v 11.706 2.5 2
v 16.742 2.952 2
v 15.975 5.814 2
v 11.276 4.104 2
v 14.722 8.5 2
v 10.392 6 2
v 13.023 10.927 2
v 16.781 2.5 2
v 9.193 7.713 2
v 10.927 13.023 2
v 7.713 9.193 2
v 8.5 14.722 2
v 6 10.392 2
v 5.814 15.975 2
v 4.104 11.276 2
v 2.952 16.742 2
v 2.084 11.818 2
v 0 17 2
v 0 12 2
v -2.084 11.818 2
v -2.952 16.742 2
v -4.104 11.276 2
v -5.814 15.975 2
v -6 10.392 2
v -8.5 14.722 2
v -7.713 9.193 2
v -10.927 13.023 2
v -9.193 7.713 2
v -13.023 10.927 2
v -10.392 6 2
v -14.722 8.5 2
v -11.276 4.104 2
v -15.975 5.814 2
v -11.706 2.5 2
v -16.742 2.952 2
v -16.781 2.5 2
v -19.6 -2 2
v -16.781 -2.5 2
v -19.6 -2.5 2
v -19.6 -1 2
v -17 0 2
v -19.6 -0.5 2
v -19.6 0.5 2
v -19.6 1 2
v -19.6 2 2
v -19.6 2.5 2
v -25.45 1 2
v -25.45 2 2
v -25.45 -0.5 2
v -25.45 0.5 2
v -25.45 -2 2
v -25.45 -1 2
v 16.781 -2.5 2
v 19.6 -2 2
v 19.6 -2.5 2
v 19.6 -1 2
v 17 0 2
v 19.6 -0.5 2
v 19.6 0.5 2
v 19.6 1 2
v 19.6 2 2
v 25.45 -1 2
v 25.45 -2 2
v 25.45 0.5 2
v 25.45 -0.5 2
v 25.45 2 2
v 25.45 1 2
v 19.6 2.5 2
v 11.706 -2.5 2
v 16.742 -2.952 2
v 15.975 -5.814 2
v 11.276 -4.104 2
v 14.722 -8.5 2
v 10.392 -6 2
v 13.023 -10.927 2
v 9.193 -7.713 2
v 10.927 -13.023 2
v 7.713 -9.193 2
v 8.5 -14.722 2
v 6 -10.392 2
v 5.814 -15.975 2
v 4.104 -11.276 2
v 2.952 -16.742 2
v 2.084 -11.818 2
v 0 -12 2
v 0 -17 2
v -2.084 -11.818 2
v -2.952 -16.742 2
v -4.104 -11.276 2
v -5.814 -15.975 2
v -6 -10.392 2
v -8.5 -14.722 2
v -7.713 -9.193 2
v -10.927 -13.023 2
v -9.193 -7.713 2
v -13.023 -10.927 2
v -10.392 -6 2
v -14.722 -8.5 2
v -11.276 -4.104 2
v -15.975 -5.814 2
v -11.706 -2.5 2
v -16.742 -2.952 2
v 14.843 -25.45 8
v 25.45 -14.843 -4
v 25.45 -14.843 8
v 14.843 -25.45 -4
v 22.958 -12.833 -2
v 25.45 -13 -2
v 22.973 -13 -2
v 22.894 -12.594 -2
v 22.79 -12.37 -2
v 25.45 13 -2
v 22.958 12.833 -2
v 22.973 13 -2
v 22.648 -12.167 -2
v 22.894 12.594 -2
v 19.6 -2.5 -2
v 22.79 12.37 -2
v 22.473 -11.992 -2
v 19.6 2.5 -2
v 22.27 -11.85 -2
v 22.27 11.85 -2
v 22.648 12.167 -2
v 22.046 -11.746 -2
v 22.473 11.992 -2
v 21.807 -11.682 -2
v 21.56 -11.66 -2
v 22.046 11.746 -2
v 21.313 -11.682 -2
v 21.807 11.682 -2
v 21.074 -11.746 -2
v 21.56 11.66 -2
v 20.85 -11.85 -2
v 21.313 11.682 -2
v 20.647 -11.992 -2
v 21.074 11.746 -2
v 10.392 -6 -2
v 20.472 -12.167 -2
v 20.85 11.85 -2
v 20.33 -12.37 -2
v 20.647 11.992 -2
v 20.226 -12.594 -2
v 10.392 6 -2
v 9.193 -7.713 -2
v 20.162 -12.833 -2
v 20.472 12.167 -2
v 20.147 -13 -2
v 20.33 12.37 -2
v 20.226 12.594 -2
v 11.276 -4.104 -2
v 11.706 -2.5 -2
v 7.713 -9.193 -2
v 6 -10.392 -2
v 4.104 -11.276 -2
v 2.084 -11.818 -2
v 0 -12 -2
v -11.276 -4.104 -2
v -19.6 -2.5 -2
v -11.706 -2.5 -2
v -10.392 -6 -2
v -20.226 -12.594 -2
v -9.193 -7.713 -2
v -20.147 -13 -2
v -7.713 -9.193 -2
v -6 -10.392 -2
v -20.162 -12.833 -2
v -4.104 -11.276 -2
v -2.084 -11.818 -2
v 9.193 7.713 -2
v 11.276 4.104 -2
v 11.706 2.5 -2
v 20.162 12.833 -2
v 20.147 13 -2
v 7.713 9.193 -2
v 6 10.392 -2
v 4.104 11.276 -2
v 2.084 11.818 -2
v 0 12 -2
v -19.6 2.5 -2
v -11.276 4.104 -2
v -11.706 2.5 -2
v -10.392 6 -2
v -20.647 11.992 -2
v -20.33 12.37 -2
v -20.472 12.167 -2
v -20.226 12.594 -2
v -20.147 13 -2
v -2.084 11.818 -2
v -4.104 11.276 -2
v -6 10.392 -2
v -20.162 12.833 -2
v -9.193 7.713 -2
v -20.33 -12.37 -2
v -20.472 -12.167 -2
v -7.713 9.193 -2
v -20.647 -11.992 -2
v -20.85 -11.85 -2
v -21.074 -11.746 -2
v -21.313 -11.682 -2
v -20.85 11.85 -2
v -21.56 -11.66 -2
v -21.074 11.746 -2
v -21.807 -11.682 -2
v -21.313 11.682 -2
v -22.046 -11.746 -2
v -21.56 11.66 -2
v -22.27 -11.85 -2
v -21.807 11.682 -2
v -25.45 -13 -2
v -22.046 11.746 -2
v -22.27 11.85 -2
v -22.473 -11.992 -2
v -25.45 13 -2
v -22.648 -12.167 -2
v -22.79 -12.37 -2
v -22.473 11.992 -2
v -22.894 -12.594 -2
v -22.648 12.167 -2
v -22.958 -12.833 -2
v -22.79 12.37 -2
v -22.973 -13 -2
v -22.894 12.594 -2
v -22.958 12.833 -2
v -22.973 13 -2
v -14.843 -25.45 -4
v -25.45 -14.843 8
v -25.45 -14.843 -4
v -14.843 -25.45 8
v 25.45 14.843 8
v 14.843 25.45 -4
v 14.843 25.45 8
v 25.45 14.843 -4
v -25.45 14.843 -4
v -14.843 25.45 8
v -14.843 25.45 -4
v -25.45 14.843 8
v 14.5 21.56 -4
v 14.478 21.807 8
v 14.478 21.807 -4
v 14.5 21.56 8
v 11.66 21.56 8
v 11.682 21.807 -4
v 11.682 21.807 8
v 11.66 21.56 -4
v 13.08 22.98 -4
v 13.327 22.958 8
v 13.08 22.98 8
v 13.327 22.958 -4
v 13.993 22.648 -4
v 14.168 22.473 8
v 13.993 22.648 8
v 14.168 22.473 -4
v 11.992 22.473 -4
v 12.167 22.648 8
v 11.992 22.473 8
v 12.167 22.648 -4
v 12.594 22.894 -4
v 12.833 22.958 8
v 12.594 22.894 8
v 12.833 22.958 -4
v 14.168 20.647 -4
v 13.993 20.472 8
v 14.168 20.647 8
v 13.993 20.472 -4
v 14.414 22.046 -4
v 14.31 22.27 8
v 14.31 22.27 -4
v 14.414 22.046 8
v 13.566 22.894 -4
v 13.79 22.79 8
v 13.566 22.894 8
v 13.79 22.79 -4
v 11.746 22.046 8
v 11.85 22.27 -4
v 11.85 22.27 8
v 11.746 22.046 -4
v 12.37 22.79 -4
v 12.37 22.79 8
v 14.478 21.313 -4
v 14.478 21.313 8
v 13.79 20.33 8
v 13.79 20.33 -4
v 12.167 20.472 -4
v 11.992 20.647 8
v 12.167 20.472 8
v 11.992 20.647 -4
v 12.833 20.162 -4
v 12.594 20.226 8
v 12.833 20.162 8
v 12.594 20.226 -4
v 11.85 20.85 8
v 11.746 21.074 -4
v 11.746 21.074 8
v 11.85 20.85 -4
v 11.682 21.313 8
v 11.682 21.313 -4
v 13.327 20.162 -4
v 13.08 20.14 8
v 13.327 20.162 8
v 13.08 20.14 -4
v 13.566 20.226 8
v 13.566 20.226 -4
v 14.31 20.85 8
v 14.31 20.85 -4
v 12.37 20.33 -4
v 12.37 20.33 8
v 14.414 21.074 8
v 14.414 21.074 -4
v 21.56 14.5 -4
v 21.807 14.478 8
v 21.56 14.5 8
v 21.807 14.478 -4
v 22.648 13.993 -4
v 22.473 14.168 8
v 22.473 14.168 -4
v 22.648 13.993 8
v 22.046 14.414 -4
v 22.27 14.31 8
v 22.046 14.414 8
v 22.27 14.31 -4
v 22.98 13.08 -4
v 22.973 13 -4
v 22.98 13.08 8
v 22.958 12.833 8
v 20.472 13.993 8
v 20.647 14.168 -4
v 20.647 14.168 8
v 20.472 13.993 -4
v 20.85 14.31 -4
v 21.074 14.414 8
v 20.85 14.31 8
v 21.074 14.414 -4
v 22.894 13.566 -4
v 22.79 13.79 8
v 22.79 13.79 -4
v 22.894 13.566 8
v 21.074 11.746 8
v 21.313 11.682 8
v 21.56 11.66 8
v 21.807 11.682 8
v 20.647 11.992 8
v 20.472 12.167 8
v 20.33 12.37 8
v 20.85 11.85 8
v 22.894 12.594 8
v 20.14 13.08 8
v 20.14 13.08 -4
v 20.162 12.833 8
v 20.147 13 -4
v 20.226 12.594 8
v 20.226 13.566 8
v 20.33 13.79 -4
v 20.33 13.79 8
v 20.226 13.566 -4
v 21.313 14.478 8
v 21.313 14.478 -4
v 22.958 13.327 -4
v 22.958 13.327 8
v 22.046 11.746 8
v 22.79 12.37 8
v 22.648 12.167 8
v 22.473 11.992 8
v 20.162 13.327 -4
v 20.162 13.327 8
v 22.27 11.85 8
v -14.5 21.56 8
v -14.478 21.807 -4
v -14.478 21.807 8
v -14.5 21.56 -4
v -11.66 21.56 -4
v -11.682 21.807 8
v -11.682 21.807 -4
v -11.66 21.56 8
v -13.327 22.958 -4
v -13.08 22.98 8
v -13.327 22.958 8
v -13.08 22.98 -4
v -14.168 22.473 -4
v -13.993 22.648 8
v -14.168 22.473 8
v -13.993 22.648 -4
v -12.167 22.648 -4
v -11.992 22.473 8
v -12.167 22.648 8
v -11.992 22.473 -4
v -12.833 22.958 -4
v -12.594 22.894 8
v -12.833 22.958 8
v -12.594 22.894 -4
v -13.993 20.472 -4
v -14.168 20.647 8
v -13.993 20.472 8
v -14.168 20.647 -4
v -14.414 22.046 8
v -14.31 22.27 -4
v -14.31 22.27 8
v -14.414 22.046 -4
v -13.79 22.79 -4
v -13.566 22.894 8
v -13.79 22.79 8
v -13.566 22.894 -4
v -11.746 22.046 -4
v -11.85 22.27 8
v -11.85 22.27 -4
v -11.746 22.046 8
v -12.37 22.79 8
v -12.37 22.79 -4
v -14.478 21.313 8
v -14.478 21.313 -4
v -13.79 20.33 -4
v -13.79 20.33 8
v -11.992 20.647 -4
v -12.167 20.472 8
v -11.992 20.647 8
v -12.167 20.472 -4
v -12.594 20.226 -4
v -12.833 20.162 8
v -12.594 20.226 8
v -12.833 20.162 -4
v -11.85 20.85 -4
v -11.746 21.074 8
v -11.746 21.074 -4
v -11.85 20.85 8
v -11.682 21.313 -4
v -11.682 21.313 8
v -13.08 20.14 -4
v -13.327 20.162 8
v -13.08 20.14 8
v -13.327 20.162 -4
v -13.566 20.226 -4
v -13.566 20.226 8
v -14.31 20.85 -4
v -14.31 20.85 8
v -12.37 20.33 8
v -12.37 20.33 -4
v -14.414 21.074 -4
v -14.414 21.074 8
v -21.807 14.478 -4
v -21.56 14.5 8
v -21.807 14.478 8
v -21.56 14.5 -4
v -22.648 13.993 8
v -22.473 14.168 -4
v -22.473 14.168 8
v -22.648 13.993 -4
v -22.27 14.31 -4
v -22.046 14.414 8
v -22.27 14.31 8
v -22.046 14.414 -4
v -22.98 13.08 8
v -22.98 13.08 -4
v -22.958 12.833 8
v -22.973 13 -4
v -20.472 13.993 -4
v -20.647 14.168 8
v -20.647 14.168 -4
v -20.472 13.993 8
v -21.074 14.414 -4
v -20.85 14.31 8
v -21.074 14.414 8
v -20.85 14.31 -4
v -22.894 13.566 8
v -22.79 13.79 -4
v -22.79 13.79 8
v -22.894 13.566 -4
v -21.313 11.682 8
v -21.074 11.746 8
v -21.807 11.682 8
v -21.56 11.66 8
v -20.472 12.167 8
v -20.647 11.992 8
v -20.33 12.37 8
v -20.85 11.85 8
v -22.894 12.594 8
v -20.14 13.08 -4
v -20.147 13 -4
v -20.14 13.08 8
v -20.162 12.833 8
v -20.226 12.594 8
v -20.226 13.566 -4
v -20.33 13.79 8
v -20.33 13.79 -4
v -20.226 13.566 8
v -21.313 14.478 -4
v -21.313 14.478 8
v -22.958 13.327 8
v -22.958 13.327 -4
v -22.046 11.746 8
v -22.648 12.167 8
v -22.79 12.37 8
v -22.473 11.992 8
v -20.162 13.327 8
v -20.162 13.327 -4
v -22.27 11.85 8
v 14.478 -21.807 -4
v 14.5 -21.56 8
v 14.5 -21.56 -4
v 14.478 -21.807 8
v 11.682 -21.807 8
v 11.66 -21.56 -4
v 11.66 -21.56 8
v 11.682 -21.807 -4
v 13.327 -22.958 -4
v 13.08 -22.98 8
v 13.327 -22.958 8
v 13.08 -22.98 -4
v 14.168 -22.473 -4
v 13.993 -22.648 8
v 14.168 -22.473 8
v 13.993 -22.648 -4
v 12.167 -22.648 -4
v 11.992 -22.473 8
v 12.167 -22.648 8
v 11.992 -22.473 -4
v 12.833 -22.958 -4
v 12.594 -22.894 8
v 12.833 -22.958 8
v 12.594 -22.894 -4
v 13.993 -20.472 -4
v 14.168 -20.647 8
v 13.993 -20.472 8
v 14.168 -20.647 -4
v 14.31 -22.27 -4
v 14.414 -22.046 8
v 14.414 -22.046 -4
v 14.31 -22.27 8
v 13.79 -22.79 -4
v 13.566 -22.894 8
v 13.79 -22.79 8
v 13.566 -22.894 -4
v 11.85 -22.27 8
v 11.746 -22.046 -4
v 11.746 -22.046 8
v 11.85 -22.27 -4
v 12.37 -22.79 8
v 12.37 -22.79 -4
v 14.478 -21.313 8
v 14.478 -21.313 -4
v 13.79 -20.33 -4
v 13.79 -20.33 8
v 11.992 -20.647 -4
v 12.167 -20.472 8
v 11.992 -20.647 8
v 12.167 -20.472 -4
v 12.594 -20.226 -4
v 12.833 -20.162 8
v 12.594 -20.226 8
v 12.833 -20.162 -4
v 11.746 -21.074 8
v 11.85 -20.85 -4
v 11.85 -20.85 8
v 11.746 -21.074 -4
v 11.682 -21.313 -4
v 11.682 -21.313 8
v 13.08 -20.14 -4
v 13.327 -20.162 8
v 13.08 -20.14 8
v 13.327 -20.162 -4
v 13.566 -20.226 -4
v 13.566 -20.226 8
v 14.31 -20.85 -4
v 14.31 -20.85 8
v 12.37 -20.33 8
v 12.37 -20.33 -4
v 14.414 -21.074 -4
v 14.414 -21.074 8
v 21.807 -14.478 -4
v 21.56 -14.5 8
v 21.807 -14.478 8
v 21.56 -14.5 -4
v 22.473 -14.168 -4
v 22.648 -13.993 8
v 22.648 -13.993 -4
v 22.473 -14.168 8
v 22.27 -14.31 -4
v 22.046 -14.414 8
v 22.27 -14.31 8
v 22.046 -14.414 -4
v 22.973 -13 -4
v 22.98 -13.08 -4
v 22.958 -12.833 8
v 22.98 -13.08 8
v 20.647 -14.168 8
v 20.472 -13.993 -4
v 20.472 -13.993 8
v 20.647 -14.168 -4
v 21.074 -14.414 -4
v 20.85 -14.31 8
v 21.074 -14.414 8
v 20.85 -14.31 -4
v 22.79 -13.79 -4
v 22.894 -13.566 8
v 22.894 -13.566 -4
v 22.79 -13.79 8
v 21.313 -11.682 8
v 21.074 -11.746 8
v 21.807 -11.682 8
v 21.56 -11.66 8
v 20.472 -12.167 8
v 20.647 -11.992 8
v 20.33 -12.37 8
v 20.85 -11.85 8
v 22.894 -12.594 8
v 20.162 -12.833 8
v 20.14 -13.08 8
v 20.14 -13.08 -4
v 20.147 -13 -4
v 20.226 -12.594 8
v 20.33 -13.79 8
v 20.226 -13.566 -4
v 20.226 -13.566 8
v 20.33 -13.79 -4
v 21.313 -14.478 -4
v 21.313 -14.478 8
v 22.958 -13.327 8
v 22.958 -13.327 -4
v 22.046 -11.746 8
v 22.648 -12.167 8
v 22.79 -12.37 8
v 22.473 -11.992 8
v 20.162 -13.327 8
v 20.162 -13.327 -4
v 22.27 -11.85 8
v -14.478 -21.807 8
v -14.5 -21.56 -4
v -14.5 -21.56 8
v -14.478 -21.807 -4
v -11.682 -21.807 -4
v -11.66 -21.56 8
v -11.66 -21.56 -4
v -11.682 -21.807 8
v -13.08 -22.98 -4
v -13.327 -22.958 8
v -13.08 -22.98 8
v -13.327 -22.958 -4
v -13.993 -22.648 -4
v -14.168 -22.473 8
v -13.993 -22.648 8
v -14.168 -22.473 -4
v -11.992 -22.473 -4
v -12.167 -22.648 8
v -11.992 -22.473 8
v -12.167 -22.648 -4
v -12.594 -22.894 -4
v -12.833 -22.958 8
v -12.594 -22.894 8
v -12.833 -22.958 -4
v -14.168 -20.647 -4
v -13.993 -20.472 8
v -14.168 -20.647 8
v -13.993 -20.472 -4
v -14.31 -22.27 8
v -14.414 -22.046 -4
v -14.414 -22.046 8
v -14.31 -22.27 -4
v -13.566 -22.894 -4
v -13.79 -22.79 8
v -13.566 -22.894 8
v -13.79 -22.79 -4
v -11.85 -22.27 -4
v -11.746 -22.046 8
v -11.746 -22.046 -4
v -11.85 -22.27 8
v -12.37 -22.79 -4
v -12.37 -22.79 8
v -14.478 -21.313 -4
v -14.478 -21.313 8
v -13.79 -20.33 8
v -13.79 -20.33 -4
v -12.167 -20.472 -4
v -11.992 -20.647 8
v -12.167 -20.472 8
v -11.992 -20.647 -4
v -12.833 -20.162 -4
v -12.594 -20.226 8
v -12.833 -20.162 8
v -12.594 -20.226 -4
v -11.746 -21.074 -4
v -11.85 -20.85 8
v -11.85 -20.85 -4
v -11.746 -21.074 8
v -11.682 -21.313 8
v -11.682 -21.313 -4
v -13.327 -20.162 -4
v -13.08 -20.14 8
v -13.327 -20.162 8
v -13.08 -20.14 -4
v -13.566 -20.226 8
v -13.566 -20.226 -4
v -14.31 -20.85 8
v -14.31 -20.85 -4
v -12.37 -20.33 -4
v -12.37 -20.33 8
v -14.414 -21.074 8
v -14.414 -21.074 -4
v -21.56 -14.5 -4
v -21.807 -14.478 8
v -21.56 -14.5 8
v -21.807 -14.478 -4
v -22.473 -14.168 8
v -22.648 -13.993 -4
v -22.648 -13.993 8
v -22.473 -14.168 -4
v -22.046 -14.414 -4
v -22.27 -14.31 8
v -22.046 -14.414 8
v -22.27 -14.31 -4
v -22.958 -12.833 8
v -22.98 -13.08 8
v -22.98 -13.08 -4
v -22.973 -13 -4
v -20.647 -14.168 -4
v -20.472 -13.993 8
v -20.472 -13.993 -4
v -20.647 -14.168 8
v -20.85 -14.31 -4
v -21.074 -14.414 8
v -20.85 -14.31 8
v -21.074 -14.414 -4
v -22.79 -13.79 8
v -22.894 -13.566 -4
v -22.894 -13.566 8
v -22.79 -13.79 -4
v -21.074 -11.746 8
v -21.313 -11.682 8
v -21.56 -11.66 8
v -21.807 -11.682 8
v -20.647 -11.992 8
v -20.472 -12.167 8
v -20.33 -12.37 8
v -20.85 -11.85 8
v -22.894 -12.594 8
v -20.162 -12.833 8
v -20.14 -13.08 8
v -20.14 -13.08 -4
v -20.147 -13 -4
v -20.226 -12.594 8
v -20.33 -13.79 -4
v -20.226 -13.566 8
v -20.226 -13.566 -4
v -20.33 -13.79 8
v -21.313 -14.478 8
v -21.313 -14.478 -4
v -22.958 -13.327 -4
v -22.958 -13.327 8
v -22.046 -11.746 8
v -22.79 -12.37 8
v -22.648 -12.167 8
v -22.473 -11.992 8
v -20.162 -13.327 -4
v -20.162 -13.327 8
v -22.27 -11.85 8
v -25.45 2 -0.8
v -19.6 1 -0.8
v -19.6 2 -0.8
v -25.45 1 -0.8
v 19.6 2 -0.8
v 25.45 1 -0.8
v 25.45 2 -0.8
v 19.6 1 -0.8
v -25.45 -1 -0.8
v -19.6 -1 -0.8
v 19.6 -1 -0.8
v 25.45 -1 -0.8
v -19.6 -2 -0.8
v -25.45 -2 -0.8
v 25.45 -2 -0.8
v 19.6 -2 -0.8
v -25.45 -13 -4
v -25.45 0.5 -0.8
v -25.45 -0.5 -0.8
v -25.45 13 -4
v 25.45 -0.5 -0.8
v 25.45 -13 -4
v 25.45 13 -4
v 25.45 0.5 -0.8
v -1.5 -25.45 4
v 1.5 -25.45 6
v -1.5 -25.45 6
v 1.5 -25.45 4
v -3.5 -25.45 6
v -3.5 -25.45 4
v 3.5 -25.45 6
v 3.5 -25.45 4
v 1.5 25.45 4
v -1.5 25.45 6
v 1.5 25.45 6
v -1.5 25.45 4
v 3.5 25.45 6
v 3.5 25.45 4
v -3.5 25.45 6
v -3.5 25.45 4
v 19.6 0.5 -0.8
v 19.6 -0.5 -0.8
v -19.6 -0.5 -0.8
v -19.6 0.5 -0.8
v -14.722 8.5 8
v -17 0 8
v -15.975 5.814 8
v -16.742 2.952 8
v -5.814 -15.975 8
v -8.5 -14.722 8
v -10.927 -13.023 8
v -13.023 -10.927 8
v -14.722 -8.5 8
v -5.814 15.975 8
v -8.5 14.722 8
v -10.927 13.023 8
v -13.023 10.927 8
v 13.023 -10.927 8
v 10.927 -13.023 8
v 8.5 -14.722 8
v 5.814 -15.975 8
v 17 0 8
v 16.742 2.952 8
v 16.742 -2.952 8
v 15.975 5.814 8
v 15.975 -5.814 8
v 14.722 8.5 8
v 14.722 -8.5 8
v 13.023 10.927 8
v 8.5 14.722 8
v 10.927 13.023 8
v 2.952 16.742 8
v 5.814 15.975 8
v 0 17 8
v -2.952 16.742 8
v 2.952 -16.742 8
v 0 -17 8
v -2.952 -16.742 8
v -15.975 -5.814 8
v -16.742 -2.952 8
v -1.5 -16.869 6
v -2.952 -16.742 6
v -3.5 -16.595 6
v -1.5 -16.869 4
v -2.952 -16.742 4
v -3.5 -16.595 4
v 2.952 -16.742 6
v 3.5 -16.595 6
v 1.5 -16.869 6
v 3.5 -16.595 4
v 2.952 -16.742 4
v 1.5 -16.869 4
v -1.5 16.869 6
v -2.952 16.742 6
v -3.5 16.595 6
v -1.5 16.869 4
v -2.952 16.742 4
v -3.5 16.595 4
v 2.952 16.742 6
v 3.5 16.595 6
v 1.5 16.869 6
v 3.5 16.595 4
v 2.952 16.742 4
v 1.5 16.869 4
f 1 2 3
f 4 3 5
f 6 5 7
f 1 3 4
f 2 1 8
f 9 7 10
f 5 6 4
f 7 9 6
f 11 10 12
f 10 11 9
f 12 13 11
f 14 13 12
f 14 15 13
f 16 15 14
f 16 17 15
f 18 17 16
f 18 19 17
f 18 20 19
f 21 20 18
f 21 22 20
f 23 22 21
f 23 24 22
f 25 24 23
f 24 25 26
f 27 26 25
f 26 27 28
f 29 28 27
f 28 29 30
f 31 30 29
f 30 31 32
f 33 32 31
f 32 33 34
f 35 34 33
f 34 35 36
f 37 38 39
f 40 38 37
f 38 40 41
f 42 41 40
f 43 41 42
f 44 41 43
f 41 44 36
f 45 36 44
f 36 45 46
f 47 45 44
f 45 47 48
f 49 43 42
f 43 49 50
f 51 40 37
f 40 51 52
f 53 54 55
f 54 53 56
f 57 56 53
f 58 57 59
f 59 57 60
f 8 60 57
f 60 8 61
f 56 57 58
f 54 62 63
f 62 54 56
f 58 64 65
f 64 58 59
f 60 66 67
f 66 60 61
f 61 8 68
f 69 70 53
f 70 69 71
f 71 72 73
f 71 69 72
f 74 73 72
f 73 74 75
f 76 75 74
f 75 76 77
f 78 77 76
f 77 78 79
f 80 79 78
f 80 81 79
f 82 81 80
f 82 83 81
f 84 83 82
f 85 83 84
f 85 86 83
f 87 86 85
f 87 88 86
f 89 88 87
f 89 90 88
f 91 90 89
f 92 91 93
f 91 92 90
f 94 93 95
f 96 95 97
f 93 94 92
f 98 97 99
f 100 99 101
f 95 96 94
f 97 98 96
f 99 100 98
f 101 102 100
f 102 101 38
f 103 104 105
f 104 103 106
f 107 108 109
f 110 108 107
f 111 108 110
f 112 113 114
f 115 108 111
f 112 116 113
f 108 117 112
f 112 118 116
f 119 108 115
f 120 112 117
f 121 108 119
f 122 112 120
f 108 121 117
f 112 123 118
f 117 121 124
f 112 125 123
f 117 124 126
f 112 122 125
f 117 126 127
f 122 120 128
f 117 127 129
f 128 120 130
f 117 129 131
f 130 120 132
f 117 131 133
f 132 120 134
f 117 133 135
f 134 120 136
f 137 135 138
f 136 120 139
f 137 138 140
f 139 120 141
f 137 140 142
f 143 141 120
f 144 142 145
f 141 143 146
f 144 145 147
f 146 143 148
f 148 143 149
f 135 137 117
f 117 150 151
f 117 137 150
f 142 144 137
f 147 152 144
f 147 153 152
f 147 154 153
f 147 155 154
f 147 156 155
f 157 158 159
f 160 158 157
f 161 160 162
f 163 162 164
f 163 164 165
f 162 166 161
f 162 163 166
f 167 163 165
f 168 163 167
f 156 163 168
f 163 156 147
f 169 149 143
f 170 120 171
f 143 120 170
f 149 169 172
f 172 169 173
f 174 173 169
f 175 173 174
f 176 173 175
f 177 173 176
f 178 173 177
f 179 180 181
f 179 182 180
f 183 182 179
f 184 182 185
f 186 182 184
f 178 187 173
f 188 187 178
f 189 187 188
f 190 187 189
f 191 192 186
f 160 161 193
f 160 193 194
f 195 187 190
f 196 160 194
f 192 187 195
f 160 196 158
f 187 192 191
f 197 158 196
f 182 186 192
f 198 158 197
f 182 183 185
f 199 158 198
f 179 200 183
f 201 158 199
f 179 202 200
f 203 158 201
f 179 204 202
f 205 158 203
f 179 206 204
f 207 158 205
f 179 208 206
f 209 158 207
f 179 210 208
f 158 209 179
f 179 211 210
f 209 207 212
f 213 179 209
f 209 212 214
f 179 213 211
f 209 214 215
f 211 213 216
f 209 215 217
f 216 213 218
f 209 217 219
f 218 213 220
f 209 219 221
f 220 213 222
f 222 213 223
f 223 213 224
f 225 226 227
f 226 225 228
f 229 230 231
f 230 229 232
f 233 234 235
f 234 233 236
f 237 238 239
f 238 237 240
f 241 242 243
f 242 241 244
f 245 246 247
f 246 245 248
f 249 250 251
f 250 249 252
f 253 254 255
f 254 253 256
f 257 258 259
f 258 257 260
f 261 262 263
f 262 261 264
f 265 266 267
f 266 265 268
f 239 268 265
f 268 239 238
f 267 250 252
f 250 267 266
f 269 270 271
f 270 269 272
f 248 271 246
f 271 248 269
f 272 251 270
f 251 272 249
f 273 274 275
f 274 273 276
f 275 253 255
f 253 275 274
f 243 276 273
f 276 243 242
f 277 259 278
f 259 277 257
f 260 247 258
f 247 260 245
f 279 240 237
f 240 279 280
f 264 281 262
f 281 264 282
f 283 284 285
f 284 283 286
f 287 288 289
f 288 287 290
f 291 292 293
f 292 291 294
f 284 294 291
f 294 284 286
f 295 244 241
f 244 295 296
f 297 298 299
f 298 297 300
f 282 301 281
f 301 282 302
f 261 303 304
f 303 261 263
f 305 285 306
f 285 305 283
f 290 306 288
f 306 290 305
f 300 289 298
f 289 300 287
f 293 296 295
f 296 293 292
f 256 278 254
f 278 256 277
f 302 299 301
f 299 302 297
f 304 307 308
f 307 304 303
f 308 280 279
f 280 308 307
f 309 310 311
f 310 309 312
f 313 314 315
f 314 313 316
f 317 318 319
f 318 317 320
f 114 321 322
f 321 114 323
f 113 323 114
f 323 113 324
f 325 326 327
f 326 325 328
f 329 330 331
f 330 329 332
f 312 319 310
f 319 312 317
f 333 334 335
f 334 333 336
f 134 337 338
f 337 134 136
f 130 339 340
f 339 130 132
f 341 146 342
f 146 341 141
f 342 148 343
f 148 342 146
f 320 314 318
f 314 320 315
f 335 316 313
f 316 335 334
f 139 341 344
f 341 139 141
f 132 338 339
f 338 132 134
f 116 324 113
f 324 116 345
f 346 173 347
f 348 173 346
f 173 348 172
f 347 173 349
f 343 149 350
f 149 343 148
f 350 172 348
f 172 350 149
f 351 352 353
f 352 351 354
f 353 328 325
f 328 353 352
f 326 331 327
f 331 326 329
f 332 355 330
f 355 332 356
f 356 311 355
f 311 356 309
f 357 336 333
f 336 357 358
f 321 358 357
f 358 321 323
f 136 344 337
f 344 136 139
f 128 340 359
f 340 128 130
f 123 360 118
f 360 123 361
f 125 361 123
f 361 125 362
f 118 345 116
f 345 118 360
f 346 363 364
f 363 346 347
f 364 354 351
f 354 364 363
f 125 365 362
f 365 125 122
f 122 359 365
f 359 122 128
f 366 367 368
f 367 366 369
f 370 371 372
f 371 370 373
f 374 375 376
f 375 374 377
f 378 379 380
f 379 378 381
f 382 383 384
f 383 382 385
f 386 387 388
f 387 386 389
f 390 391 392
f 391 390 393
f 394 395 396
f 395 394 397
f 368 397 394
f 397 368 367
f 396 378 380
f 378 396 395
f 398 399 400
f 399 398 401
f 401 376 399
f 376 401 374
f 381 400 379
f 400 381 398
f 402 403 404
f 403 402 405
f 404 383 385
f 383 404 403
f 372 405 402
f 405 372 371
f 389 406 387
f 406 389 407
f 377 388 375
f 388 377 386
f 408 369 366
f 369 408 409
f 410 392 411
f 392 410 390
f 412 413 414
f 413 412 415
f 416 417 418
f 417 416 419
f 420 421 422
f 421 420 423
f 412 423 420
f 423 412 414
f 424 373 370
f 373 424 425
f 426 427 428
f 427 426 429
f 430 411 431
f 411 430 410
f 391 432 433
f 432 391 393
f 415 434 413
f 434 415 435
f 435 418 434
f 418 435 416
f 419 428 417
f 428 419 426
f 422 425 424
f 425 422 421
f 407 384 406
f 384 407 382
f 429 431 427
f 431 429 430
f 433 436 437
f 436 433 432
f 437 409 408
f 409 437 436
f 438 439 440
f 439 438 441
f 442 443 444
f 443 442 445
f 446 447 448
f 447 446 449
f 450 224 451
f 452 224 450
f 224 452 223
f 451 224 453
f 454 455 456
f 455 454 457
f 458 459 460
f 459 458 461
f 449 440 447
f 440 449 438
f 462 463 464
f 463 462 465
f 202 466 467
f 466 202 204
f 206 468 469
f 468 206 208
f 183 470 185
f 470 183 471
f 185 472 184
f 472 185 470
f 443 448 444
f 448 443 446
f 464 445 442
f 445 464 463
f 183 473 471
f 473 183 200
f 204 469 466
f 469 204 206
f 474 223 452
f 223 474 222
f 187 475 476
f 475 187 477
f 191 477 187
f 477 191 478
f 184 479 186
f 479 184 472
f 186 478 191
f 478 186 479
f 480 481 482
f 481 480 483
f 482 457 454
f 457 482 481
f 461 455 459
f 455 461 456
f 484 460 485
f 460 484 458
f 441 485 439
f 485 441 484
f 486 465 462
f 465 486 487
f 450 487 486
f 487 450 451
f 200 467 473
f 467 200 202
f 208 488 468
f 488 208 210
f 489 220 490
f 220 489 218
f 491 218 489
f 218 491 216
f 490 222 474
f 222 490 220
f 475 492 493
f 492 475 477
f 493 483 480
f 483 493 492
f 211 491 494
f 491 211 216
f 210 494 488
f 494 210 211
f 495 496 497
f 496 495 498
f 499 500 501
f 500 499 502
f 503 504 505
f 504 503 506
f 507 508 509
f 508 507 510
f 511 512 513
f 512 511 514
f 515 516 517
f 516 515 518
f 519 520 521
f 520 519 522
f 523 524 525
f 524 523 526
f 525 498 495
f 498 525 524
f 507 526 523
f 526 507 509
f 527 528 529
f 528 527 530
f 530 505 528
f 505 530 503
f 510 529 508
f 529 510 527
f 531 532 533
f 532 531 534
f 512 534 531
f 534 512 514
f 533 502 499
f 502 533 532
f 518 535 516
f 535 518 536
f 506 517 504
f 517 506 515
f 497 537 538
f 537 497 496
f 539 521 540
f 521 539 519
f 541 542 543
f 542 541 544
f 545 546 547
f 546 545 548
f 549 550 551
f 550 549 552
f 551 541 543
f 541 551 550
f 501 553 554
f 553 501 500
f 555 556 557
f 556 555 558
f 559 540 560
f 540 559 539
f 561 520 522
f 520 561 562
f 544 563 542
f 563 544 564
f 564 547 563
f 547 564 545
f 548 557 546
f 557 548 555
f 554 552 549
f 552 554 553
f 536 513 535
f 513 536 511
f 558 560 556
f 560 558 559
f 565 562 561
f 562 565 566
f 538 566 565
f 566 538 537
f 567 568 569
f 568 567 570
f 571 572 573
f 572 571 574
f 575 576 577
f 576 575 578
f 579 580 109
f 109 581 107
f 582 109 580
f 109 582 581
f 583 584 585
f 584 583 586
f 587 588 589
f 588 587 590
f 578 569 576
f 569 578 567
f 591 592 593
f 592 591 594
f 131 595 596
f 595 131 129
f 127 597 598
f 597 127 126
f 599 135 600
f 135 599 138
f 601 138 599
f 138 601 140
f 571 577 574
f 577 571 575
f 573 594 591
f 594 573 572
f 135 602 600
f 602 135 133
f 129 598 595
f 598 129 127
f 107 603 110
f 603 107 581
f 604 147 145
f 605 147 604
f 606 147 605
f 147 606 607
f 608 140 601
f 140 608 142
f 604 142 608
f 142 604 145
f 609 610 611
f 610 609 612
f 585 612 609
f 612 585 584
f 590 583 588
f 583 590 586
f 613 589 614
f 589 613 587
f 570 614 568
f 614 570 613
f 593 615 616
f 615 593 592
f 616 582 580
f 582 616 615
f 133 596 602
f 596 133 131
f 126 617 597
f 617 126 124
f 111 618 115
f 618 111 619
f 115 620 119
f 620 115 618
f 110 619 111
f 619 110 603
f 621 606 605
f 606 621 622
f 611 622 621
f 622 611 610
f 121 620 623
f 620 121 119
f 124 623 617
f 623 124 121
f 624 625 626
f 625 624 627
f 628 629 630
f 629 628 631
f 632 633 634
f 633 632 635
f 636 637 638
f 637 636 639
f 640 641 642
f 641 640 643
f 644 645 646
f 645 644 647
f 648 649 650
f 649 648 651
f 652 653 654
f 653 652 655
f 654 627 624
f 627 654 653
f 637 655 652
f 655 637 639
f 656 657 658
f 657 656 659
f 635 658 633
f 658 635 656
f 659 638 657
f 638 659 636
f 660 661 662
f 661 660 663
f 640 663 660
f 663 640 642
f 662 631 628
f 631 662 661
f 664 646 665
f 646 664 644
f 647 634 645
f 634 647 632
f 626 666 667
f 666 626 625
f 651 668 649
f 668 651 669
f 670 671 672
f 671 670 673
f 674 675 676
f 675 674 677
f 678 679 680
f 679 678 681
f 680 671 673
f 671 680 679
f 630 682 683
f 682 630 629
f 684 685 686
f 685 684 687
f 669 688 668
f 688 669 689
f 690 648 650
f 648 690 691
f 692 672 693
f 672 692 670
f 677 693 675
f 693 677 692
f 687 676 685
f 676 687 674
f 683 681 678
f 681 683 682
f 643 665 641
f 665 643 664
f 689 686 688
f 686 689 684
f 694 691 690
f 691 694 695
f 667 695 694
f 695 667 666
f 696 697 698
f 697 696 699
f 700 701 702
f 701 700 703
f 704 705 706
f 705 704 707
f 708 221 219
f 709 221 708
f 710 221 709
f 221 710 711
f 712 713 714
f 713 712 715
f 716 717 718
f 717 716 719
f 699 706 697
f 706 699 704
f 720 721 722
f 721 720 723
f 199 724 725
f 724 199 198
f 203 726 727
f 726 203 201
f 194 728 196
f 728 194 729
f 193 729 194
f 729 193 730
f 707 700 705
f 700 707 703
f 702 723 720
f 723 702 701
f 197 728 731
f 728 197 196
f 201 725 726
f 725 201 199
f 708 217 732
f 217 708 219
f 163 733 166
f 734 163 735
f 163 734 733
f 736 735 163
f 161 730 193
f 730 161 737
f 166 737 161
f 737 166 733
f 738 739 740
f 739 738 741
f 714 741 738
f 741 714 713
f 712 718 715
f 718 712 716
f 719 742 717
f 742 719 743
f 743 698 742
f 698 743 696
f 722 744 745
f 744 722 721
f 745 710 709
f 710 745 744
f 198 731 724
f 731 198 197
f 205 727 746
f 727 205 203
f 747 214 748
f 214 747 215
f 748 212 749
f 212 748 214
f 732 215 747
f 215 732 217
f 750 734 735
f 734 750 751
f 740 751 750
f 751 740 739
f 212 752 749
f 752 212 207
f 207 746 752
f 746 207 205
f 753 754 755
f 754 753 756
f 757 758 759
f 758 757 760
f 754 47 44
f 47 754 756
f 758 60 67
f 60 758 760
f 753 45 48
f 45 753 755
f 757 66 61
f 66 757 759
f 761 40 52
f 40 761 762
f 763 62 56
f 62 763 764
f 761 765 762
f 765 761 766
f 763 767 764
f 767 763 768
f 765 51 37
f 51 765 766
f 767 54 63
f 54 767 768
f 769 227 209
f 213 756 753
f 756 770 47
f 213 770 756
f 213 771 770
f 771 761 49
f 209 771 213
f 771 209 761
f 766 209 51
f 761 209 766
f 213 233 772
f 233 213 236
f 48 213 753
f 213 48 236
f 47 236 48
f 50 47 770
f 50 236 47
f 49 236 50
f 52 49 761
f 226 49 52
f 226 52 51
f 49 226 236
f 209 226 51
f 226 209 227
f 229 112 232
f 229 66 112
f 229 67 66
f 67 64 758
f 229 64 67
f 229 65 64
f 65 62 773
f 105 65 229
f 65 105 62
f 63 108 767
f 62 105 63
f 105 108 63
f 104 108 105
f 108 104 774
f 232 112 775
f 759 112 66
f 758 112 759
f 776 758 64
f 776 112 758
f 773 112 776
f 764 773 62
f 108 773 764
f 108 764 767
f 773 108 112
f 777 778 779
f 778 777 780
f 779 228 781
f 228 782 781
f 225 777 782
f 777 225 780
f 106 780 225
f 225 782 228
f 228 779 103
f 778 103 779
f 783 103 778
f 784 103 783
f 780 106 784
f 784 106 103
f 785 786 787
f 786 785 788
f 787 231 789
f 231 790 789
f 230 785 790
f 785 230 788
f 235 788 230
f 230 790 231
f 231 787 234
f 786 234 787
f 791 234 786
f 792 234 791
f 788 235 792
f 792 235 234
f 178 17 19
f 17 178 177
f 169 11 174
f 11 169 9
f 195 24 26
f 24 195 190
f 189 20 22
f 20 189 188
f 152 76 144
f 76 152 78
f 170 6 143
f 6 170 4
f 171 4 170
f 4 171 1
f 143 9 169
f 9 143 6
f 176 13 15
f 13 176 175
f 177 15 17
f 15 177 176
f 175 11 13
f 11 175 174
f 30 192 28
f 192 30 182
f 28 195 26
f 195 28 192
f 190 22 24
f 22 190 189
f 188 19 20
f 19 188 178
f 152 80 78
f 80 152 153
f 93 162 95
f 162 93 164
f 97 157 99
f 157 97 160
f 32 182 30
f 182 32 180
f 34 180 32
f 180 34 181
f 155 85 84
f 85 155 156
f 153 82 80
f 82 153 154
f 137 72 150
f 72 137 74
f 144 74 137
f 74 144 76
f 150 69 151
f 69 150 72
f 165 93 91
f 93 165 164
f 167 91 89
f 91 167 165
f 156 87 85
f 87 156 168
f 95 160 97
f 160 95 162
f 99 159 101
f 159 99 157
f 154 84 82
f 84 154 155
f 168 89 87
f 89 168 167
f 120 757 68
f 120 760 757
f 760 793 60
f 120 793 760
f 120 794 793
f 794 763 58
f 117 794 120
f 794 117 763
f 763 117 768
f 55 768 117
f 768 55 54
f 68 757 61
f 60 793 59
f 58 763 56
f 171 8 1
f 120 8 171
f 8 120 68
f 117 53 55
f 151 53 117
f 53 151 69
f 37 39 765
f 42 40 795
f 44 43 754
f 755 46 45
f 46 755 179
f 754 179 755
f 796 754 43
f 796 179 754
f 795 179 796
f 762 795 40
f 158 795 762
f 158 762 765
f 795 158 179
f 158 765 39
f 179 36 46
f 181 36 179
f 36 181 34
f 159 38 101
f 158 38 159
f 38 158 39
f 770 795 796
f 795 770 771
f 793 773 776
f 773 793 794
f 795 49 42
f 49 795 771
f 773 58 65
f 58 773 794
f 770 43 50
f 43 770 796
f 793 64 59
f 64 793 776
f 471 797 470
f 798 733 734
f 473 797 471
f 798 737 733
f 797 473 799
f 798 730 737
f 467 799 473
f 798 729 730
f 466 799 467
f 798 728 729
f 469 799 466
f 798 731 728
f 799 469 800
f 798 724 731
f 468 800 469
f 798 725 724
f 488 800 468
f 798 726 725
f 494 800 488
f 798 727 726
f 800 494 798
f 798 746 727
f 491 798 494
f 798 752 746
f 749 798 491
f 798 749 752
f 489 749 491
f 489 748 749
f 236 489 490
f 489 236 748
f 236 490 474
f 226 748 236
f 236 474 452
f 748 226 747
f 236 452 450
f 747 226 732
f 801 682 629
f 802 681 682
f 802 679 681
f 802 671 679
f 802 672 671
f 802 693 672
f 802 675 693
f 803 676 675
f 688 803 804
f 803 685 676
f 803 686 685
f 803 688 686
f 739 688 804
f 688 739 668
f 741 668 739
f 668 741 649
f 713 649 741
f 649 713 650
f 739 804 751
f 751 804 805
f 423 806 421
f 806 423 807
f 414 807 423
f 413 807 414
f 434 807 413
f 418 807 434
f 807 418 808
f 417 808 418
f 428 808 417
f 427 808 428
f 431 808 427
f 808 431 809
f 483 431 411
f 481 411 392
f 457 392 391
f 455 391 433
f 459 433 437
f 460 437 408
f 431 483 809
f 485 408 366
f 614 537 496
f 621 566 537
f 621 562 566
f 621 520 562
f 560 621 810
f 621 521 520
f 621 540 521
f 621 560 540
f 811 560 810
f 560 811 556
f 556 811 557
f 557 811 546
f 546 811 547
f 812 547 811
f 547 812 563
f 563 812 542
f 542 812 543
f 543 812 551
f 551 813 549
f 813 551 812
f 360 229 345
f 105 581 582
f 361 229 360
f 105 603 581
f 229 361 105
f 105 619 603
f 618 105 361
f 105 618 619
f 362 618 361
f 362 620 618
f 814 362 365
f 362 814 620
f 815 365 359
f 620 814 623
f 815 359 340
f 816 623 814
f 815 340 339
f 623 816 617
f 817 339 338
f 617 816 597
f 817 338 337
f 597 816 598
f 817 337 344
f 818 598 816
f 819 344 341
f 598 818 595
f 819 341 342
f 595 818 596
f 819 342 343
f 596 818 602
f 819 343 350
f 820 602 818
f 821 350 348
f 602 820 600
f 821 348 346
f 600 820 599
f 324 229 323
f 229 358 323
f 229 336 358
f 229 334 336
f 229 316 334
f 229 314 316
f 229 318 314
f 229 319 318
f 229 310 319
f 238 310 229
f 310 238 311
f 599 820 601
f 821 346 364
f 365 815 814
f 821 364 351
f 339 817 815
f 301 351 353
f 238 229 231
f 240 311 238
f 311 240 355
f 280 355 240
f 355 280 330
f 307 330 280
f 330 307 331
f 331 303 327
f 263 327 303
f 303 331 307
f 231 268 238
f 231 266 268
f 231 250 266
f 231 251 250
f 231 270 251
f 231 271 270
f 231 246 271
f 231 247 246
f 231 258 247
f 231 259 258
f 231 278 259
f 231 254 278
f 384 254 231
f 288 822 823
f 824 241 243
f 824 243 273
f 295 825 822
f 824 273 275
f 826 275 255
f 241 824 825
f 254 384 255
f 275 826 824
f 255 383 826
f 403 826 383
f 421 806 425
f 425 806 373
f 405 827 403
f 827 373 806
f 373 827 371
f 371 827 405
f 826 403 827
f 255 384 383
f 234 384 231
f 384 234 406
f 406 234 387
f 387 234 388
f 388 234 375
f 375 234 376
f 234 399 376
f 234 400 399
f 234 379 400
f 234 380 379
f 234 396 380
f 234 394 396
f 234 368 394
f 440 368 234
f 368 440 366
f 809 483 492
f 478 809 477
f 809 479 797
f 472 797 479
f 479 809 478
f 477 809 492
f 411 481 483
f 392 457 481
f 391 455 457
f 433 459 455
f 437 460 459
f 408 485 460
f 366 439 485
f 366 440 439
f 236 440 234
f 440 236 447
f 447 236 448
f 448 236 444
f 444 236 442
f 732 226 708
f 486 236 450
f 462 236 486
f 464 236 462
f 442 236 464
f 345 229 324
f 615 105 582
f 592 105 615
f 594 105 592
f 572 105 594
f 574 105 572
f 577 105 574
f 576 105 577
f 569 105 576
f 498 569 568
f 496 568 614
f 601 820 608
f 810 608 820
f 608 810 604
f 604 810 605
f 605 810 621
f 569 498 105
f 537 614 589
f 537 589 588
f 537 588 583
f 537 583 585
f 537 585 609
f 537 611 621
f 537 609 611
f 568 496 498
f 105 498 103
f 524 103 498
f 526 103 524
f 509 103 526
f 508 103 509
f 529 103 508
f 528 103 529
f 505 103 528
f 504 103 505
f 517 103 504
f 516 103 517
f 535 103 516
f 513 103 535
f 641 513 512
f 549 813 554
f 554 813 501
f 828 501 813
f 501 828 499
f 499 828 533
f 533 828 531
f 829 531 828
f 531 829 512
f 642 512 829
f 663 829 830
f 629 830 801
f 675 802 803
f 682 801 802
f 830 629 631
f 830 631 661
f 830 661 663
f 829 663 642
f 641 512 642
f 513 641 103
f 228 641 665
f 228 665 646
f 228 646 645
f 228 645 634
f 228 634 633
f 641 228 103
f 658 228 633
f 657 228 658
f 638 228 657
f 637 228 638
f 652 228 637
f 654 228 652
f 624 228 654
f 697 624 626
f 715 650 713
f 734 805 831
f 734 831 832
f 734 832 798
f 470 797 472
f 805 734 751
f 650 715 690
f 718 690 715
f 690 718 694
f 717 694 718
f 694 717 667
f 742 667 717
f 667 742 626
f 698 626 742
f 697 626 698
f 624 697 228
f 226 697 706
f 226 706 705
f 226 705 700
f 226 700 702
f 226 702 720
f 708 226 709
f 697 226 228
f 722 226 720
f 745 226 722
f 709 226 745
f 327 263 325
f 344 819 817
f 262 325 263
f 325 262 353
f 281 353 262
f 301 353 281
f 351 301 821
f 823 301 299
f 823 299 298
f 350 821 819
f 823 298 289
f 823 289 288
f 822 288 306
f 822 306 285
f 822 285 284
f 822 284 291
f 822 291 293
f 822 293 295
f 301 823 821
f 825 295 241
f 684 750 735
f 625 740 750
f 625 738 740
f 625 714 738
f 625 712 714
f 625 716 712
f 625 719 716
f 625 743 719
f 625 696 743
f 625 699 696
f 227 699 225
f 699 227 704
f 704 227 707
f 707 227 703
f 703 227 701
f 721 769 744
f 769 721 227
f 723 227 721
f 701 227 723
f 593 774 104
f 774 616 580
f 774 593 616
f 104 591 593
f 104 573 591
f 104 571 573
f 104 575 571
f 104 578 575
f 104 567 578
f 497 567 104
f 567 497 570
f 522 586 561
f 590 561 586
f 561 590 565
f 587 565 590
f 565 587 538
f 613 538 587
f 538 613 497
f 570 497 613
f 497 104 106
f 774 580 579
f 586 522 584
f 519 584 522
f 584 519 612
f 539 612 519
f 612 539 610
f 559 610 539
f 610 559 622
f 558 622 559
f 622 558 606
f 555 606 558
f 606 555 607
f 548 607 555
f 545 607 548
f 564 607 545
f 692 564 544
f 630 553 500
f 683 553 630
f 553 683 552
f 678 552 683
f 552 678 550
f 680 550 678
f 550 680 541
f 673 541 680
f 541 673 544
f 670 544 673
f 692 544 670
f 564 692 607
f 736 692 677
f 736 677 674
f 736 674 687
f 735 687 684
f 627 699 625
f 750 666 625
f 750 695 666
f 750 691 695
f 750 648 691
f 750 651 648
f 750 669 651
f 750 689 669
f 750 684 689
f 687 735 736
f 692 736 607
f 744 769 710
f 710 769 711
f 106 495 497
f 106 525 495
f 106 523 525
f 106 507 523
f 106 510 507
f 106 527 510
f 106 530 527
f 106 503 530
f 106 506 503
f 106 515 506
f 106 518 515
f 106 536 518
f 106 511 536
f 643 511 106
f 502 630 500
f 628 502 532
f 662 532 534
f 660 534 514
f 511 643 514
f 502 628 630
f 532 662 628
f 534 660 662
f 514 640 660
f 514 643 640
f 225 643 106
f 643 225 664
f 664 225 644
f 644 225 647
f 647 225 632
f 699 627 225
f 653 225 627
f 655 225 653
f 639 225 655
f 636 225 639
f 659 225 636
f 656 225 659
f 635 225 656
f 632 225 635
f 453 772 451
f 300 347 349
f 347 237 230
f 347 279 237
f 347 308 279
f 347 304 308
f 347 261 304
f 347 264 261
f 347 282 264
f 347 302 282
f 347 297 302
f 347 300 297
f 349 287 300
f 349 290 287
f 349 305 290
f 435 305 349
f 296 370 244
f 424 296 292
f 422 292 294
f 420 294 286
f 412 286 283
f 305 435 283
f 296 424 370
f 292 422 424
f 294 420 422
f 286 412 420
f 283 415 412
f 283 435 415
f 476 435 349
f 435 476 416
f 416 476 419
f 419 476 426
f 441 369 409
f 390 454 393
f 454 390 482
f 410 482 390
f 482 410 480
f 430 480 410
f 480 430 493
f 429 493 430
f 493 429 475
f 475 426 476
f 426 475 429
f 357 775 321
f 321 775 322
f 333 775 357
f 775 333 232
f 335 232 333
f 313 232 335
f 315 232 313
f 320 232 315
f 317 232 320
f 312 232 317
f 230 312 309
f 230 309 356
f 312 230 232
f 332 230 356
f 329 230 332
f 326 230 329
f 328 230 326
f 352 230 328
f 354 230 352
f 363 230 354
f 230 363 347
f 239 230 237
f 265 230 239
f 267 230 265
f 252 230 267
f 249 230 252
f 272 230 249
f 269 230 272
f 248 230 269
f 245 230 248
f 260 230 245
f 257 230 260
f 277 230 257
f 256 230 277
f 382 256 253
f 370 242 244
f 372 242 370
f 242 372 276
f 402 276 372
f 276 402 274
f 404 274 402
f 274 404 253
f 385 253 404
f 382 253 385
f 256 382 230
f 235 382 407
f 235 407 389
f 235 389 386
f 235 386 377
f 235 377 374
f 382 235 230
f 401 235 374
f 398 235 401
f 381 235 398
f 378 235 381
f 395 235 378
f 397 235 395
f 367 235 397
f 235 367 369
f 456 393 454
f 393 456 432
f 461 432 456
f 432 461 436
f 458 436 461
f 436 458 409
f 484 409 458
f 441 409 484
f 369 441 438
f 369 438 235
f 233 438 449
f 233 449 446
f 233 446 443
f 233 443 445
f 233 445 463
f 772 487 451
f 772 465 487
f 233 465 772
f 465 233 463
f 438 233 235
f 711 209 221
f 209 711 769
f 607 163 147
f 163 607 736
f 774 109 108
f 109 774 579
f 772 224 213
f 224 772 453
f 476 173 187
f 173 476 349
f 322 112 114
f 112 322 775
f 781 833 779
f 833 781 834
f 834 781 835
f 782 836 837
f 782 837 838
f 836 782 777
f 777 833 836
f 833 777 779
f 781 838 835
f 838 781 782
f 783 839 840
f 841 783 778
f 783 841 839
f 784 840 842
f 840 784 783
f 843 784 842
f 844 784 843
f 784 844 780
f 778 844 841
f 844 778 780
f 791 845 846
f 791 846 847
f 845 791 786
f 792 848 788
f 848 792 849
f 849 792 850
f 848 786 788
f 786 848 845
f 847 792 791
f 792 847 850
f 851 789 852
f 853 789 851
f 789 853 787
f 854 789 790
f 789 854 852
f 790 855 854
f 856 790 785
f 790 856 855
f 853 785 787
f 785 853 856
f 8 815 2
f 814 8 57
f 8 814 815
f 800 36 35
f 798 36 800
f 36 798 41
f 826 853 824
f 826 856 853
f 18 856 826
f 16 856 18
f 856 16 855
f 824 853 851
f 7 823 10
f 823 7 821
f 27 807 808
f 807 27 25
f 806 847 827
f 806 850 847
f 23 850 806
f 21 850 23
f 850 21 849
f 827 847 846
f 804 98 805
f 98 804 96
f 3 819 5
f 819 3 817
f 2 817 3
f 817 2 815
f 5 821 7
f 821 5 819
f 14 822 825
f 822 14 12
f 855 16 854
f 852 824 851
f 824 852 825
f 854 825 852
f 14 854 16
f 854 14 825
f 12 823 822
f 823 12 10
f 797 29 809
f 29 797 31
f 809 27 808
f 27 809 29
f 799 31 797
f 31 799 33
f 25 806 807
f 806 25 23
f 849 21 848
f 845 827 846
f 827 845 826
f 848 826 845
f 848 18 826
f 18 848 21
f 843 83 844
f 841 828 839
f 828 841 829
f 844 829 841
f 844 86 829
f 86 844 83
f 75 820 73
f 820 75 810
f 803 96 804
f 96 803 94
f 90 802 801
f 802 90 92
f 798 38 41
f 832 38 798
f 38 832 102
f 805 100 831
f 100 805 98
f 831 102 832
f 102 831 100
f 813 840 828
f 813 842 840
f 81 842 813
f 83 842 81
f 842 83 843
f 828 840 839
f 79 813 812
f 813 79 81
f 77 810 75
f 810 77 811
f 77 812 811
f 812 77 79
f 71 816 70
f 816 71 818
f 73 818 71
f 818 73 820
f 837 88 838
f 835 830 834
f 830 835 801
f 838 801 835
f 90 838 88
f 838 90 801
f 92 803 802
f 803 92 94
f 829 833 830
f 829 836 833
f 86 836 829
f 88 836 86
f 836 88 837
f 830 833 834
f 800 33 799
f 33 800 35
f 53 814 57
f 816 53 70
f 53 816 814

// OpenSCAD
//base is made with square - 4 square
base_square_L = 50.9;
base_substract_square_L = 15;
mid_part_H = 4; // equal to sensor_H as sensor_H
bottom_part_H = 2;
top_part_H = 6;

//holes for nuts
nut_R = 1.42;
nut_H = 50;
nut_distance_1 = 21.56;
nut_distance_2 = 13.08;
$fn = 36;

//glass slide
slide_W = 26;
slide_L = 76; //actual value is 25x75
slide_H = 2; //include glass slide + gene frame + cover slip
cover_W = 25; // cover slip size

//thermal sensor
//* Size of a temperature sensor Dallas 18B20 *//
sensor_L = 8; // this may be wrong, should be 5?
sensor_W = 5;
sensor_H = 4;

//sensor pins
sensor_pin_gap = 1.5; // horizontal difference between 3 pins
sensor_pin_ratio = 0.3; //wire height from the bottom of base plate
sensor_pin_W = 1; //actual value is 0.5?
sensor_pin_L = 100; //thorough wires


//viewing holes
viewing_hole_R = 12; //filter paper r = 6.5 
viewing_hole_H = 100;


//heating chamber  <-- this gives extra space for resistor not to touch plastic and blocking view
chamber_R_extra = 2;

//heating resistance
resistor_R = 1.5;
resistor_pin_gap = 5;
resistor_pin_W = 1;
resistor_pin_L = 100;
resistor_pin_H = 1;


module mirror_duplication(mirror_plane){//create a mirror object while keeping original object
    children();
    mirror(mirror_plane)children();
}

module quad_mirror(){  //mirror copy everything for four times. The children() object is at top right corner
    children();
    mirror([1,0,0])children();
    mirror([0,1,0]){    
        children();
        mirror([1,0,0])children();}
}

module base_plate(thickness){//base plate
    difference(){ 
    
    //base cube
    cube([base_square_L, base_square_L, thickness], center = true);

    //the substarcting squares -- make octagon
    quad_mirror(){
        translate([0.5*base_square_L,0.5*base_square_L,0])rotate(a=45,v=[0,0,1]){cube([base_substract_square_L, base_substract_square_L, thickness], center = true);}
    }
    
    
    //holes for nuts
    quad_mirror(){
        mirror_duplication([1,-1,0])translate([nut_distance_2,nut_distance_1, -0.5*nut_H])cylinder(nut_H, nut_R, nut_R);
    }
    
    {//viewing hole
    translate([0, 0, -1*thickness])
        cylinder(viewing_hole_H, viewing_hole_R, viewing_hole_R);
    }
    }
    

    }

difference(){ //middle part - base with thermal sensors + top part with heater
    mid_part_H = sensor_H;
    base_plate(mid_part_H);
    {//thermal sensors
        //sensors  
        //0.45*sensor_L because the circular shape
        mirror_duplication([1,0,0]){translate([viewing_hole_R+0.45*sensor_L, 0, -0.5*mid_part_H+0.5*sensor_H]) cube([sensor_L, sensor_W, sensor_H], center = true);}

        //wire 1,2,3
        translate([0, 0, (-0.5+sensor_pin_ratio)*mid_part_H+0.5*mid_part_H
        ])cube([sensor_pin_L, sensor_pin_W, mid_part_H], center = true);
        //wire 2
        translate([0, sensor_pin_gap, (-0.5+sensor_pin_ratio)*mid_part_H+0.5*mid_part_H])cube([sensor_pin_L, sensor_pin_W, mid_part_H], center = true);
        //wire 3
        mirror_duplication([0,1,0])translate([0, sensor_pin_gap, (-0.5+sensor_pin_ratio)*mid_part_H+0.5*mid_part_H])cube([sensor_pin_L, sensor_pin_W, mid_part_H], center = true);
        }

       
}


difference(){//top part
    //base plate
    translate([0, 0, 0.5*(mid_part_H+top_part_H)])base_plate(top_part_H);
    
    {//heating chamber
    chamber_R = 2*resistor_R + viewing_hole_R + chamber_R_extra;
    translate([0, 0, 0.5*(mid_part_H)]) cylinder(viewing_hole_H, chamber_R, chamber_R);}
    

    {//2 resistors
    mirror_duplication([0,1,0]){ // two resistors
    translate([0,-1*chamber_R+1.1*resistor_R,0.5*mid_part_H+0.5*top_part_H])
        union(){//heating resistor
            
        translate([-0.5*resistor_pin_gap,0,0])rotate(a=[0,90,0],v=[0,1,0])cylinder(resistor_pin_gap, resistor_R, resistor_R);
            
            
        mirror_duplication([1,0,0]){translate([-0.5*resistor_pin_gap,-0.5*resistor_pin_L,0])rotate(a=[0,0,90],v=[0,0,1])cube([resistor_pin_L, 2*resistor_pin_W, 2*resistor_pin_H], center = true);}
        }}
    }
    
}


            
    

difference(){ // bottom part
    
    //base_plate
    translate([0, 0, -0.5*(mid_part_H+bottom_part_H)])base_plate(bottom_part_H);

    {//glass slide
        translate([0, 0, -0.5*mid_part_H-bottom_part_H+0.5*slide_H])
        cube([slide_L,slide_W,slide_H],center = true);
    }
}
